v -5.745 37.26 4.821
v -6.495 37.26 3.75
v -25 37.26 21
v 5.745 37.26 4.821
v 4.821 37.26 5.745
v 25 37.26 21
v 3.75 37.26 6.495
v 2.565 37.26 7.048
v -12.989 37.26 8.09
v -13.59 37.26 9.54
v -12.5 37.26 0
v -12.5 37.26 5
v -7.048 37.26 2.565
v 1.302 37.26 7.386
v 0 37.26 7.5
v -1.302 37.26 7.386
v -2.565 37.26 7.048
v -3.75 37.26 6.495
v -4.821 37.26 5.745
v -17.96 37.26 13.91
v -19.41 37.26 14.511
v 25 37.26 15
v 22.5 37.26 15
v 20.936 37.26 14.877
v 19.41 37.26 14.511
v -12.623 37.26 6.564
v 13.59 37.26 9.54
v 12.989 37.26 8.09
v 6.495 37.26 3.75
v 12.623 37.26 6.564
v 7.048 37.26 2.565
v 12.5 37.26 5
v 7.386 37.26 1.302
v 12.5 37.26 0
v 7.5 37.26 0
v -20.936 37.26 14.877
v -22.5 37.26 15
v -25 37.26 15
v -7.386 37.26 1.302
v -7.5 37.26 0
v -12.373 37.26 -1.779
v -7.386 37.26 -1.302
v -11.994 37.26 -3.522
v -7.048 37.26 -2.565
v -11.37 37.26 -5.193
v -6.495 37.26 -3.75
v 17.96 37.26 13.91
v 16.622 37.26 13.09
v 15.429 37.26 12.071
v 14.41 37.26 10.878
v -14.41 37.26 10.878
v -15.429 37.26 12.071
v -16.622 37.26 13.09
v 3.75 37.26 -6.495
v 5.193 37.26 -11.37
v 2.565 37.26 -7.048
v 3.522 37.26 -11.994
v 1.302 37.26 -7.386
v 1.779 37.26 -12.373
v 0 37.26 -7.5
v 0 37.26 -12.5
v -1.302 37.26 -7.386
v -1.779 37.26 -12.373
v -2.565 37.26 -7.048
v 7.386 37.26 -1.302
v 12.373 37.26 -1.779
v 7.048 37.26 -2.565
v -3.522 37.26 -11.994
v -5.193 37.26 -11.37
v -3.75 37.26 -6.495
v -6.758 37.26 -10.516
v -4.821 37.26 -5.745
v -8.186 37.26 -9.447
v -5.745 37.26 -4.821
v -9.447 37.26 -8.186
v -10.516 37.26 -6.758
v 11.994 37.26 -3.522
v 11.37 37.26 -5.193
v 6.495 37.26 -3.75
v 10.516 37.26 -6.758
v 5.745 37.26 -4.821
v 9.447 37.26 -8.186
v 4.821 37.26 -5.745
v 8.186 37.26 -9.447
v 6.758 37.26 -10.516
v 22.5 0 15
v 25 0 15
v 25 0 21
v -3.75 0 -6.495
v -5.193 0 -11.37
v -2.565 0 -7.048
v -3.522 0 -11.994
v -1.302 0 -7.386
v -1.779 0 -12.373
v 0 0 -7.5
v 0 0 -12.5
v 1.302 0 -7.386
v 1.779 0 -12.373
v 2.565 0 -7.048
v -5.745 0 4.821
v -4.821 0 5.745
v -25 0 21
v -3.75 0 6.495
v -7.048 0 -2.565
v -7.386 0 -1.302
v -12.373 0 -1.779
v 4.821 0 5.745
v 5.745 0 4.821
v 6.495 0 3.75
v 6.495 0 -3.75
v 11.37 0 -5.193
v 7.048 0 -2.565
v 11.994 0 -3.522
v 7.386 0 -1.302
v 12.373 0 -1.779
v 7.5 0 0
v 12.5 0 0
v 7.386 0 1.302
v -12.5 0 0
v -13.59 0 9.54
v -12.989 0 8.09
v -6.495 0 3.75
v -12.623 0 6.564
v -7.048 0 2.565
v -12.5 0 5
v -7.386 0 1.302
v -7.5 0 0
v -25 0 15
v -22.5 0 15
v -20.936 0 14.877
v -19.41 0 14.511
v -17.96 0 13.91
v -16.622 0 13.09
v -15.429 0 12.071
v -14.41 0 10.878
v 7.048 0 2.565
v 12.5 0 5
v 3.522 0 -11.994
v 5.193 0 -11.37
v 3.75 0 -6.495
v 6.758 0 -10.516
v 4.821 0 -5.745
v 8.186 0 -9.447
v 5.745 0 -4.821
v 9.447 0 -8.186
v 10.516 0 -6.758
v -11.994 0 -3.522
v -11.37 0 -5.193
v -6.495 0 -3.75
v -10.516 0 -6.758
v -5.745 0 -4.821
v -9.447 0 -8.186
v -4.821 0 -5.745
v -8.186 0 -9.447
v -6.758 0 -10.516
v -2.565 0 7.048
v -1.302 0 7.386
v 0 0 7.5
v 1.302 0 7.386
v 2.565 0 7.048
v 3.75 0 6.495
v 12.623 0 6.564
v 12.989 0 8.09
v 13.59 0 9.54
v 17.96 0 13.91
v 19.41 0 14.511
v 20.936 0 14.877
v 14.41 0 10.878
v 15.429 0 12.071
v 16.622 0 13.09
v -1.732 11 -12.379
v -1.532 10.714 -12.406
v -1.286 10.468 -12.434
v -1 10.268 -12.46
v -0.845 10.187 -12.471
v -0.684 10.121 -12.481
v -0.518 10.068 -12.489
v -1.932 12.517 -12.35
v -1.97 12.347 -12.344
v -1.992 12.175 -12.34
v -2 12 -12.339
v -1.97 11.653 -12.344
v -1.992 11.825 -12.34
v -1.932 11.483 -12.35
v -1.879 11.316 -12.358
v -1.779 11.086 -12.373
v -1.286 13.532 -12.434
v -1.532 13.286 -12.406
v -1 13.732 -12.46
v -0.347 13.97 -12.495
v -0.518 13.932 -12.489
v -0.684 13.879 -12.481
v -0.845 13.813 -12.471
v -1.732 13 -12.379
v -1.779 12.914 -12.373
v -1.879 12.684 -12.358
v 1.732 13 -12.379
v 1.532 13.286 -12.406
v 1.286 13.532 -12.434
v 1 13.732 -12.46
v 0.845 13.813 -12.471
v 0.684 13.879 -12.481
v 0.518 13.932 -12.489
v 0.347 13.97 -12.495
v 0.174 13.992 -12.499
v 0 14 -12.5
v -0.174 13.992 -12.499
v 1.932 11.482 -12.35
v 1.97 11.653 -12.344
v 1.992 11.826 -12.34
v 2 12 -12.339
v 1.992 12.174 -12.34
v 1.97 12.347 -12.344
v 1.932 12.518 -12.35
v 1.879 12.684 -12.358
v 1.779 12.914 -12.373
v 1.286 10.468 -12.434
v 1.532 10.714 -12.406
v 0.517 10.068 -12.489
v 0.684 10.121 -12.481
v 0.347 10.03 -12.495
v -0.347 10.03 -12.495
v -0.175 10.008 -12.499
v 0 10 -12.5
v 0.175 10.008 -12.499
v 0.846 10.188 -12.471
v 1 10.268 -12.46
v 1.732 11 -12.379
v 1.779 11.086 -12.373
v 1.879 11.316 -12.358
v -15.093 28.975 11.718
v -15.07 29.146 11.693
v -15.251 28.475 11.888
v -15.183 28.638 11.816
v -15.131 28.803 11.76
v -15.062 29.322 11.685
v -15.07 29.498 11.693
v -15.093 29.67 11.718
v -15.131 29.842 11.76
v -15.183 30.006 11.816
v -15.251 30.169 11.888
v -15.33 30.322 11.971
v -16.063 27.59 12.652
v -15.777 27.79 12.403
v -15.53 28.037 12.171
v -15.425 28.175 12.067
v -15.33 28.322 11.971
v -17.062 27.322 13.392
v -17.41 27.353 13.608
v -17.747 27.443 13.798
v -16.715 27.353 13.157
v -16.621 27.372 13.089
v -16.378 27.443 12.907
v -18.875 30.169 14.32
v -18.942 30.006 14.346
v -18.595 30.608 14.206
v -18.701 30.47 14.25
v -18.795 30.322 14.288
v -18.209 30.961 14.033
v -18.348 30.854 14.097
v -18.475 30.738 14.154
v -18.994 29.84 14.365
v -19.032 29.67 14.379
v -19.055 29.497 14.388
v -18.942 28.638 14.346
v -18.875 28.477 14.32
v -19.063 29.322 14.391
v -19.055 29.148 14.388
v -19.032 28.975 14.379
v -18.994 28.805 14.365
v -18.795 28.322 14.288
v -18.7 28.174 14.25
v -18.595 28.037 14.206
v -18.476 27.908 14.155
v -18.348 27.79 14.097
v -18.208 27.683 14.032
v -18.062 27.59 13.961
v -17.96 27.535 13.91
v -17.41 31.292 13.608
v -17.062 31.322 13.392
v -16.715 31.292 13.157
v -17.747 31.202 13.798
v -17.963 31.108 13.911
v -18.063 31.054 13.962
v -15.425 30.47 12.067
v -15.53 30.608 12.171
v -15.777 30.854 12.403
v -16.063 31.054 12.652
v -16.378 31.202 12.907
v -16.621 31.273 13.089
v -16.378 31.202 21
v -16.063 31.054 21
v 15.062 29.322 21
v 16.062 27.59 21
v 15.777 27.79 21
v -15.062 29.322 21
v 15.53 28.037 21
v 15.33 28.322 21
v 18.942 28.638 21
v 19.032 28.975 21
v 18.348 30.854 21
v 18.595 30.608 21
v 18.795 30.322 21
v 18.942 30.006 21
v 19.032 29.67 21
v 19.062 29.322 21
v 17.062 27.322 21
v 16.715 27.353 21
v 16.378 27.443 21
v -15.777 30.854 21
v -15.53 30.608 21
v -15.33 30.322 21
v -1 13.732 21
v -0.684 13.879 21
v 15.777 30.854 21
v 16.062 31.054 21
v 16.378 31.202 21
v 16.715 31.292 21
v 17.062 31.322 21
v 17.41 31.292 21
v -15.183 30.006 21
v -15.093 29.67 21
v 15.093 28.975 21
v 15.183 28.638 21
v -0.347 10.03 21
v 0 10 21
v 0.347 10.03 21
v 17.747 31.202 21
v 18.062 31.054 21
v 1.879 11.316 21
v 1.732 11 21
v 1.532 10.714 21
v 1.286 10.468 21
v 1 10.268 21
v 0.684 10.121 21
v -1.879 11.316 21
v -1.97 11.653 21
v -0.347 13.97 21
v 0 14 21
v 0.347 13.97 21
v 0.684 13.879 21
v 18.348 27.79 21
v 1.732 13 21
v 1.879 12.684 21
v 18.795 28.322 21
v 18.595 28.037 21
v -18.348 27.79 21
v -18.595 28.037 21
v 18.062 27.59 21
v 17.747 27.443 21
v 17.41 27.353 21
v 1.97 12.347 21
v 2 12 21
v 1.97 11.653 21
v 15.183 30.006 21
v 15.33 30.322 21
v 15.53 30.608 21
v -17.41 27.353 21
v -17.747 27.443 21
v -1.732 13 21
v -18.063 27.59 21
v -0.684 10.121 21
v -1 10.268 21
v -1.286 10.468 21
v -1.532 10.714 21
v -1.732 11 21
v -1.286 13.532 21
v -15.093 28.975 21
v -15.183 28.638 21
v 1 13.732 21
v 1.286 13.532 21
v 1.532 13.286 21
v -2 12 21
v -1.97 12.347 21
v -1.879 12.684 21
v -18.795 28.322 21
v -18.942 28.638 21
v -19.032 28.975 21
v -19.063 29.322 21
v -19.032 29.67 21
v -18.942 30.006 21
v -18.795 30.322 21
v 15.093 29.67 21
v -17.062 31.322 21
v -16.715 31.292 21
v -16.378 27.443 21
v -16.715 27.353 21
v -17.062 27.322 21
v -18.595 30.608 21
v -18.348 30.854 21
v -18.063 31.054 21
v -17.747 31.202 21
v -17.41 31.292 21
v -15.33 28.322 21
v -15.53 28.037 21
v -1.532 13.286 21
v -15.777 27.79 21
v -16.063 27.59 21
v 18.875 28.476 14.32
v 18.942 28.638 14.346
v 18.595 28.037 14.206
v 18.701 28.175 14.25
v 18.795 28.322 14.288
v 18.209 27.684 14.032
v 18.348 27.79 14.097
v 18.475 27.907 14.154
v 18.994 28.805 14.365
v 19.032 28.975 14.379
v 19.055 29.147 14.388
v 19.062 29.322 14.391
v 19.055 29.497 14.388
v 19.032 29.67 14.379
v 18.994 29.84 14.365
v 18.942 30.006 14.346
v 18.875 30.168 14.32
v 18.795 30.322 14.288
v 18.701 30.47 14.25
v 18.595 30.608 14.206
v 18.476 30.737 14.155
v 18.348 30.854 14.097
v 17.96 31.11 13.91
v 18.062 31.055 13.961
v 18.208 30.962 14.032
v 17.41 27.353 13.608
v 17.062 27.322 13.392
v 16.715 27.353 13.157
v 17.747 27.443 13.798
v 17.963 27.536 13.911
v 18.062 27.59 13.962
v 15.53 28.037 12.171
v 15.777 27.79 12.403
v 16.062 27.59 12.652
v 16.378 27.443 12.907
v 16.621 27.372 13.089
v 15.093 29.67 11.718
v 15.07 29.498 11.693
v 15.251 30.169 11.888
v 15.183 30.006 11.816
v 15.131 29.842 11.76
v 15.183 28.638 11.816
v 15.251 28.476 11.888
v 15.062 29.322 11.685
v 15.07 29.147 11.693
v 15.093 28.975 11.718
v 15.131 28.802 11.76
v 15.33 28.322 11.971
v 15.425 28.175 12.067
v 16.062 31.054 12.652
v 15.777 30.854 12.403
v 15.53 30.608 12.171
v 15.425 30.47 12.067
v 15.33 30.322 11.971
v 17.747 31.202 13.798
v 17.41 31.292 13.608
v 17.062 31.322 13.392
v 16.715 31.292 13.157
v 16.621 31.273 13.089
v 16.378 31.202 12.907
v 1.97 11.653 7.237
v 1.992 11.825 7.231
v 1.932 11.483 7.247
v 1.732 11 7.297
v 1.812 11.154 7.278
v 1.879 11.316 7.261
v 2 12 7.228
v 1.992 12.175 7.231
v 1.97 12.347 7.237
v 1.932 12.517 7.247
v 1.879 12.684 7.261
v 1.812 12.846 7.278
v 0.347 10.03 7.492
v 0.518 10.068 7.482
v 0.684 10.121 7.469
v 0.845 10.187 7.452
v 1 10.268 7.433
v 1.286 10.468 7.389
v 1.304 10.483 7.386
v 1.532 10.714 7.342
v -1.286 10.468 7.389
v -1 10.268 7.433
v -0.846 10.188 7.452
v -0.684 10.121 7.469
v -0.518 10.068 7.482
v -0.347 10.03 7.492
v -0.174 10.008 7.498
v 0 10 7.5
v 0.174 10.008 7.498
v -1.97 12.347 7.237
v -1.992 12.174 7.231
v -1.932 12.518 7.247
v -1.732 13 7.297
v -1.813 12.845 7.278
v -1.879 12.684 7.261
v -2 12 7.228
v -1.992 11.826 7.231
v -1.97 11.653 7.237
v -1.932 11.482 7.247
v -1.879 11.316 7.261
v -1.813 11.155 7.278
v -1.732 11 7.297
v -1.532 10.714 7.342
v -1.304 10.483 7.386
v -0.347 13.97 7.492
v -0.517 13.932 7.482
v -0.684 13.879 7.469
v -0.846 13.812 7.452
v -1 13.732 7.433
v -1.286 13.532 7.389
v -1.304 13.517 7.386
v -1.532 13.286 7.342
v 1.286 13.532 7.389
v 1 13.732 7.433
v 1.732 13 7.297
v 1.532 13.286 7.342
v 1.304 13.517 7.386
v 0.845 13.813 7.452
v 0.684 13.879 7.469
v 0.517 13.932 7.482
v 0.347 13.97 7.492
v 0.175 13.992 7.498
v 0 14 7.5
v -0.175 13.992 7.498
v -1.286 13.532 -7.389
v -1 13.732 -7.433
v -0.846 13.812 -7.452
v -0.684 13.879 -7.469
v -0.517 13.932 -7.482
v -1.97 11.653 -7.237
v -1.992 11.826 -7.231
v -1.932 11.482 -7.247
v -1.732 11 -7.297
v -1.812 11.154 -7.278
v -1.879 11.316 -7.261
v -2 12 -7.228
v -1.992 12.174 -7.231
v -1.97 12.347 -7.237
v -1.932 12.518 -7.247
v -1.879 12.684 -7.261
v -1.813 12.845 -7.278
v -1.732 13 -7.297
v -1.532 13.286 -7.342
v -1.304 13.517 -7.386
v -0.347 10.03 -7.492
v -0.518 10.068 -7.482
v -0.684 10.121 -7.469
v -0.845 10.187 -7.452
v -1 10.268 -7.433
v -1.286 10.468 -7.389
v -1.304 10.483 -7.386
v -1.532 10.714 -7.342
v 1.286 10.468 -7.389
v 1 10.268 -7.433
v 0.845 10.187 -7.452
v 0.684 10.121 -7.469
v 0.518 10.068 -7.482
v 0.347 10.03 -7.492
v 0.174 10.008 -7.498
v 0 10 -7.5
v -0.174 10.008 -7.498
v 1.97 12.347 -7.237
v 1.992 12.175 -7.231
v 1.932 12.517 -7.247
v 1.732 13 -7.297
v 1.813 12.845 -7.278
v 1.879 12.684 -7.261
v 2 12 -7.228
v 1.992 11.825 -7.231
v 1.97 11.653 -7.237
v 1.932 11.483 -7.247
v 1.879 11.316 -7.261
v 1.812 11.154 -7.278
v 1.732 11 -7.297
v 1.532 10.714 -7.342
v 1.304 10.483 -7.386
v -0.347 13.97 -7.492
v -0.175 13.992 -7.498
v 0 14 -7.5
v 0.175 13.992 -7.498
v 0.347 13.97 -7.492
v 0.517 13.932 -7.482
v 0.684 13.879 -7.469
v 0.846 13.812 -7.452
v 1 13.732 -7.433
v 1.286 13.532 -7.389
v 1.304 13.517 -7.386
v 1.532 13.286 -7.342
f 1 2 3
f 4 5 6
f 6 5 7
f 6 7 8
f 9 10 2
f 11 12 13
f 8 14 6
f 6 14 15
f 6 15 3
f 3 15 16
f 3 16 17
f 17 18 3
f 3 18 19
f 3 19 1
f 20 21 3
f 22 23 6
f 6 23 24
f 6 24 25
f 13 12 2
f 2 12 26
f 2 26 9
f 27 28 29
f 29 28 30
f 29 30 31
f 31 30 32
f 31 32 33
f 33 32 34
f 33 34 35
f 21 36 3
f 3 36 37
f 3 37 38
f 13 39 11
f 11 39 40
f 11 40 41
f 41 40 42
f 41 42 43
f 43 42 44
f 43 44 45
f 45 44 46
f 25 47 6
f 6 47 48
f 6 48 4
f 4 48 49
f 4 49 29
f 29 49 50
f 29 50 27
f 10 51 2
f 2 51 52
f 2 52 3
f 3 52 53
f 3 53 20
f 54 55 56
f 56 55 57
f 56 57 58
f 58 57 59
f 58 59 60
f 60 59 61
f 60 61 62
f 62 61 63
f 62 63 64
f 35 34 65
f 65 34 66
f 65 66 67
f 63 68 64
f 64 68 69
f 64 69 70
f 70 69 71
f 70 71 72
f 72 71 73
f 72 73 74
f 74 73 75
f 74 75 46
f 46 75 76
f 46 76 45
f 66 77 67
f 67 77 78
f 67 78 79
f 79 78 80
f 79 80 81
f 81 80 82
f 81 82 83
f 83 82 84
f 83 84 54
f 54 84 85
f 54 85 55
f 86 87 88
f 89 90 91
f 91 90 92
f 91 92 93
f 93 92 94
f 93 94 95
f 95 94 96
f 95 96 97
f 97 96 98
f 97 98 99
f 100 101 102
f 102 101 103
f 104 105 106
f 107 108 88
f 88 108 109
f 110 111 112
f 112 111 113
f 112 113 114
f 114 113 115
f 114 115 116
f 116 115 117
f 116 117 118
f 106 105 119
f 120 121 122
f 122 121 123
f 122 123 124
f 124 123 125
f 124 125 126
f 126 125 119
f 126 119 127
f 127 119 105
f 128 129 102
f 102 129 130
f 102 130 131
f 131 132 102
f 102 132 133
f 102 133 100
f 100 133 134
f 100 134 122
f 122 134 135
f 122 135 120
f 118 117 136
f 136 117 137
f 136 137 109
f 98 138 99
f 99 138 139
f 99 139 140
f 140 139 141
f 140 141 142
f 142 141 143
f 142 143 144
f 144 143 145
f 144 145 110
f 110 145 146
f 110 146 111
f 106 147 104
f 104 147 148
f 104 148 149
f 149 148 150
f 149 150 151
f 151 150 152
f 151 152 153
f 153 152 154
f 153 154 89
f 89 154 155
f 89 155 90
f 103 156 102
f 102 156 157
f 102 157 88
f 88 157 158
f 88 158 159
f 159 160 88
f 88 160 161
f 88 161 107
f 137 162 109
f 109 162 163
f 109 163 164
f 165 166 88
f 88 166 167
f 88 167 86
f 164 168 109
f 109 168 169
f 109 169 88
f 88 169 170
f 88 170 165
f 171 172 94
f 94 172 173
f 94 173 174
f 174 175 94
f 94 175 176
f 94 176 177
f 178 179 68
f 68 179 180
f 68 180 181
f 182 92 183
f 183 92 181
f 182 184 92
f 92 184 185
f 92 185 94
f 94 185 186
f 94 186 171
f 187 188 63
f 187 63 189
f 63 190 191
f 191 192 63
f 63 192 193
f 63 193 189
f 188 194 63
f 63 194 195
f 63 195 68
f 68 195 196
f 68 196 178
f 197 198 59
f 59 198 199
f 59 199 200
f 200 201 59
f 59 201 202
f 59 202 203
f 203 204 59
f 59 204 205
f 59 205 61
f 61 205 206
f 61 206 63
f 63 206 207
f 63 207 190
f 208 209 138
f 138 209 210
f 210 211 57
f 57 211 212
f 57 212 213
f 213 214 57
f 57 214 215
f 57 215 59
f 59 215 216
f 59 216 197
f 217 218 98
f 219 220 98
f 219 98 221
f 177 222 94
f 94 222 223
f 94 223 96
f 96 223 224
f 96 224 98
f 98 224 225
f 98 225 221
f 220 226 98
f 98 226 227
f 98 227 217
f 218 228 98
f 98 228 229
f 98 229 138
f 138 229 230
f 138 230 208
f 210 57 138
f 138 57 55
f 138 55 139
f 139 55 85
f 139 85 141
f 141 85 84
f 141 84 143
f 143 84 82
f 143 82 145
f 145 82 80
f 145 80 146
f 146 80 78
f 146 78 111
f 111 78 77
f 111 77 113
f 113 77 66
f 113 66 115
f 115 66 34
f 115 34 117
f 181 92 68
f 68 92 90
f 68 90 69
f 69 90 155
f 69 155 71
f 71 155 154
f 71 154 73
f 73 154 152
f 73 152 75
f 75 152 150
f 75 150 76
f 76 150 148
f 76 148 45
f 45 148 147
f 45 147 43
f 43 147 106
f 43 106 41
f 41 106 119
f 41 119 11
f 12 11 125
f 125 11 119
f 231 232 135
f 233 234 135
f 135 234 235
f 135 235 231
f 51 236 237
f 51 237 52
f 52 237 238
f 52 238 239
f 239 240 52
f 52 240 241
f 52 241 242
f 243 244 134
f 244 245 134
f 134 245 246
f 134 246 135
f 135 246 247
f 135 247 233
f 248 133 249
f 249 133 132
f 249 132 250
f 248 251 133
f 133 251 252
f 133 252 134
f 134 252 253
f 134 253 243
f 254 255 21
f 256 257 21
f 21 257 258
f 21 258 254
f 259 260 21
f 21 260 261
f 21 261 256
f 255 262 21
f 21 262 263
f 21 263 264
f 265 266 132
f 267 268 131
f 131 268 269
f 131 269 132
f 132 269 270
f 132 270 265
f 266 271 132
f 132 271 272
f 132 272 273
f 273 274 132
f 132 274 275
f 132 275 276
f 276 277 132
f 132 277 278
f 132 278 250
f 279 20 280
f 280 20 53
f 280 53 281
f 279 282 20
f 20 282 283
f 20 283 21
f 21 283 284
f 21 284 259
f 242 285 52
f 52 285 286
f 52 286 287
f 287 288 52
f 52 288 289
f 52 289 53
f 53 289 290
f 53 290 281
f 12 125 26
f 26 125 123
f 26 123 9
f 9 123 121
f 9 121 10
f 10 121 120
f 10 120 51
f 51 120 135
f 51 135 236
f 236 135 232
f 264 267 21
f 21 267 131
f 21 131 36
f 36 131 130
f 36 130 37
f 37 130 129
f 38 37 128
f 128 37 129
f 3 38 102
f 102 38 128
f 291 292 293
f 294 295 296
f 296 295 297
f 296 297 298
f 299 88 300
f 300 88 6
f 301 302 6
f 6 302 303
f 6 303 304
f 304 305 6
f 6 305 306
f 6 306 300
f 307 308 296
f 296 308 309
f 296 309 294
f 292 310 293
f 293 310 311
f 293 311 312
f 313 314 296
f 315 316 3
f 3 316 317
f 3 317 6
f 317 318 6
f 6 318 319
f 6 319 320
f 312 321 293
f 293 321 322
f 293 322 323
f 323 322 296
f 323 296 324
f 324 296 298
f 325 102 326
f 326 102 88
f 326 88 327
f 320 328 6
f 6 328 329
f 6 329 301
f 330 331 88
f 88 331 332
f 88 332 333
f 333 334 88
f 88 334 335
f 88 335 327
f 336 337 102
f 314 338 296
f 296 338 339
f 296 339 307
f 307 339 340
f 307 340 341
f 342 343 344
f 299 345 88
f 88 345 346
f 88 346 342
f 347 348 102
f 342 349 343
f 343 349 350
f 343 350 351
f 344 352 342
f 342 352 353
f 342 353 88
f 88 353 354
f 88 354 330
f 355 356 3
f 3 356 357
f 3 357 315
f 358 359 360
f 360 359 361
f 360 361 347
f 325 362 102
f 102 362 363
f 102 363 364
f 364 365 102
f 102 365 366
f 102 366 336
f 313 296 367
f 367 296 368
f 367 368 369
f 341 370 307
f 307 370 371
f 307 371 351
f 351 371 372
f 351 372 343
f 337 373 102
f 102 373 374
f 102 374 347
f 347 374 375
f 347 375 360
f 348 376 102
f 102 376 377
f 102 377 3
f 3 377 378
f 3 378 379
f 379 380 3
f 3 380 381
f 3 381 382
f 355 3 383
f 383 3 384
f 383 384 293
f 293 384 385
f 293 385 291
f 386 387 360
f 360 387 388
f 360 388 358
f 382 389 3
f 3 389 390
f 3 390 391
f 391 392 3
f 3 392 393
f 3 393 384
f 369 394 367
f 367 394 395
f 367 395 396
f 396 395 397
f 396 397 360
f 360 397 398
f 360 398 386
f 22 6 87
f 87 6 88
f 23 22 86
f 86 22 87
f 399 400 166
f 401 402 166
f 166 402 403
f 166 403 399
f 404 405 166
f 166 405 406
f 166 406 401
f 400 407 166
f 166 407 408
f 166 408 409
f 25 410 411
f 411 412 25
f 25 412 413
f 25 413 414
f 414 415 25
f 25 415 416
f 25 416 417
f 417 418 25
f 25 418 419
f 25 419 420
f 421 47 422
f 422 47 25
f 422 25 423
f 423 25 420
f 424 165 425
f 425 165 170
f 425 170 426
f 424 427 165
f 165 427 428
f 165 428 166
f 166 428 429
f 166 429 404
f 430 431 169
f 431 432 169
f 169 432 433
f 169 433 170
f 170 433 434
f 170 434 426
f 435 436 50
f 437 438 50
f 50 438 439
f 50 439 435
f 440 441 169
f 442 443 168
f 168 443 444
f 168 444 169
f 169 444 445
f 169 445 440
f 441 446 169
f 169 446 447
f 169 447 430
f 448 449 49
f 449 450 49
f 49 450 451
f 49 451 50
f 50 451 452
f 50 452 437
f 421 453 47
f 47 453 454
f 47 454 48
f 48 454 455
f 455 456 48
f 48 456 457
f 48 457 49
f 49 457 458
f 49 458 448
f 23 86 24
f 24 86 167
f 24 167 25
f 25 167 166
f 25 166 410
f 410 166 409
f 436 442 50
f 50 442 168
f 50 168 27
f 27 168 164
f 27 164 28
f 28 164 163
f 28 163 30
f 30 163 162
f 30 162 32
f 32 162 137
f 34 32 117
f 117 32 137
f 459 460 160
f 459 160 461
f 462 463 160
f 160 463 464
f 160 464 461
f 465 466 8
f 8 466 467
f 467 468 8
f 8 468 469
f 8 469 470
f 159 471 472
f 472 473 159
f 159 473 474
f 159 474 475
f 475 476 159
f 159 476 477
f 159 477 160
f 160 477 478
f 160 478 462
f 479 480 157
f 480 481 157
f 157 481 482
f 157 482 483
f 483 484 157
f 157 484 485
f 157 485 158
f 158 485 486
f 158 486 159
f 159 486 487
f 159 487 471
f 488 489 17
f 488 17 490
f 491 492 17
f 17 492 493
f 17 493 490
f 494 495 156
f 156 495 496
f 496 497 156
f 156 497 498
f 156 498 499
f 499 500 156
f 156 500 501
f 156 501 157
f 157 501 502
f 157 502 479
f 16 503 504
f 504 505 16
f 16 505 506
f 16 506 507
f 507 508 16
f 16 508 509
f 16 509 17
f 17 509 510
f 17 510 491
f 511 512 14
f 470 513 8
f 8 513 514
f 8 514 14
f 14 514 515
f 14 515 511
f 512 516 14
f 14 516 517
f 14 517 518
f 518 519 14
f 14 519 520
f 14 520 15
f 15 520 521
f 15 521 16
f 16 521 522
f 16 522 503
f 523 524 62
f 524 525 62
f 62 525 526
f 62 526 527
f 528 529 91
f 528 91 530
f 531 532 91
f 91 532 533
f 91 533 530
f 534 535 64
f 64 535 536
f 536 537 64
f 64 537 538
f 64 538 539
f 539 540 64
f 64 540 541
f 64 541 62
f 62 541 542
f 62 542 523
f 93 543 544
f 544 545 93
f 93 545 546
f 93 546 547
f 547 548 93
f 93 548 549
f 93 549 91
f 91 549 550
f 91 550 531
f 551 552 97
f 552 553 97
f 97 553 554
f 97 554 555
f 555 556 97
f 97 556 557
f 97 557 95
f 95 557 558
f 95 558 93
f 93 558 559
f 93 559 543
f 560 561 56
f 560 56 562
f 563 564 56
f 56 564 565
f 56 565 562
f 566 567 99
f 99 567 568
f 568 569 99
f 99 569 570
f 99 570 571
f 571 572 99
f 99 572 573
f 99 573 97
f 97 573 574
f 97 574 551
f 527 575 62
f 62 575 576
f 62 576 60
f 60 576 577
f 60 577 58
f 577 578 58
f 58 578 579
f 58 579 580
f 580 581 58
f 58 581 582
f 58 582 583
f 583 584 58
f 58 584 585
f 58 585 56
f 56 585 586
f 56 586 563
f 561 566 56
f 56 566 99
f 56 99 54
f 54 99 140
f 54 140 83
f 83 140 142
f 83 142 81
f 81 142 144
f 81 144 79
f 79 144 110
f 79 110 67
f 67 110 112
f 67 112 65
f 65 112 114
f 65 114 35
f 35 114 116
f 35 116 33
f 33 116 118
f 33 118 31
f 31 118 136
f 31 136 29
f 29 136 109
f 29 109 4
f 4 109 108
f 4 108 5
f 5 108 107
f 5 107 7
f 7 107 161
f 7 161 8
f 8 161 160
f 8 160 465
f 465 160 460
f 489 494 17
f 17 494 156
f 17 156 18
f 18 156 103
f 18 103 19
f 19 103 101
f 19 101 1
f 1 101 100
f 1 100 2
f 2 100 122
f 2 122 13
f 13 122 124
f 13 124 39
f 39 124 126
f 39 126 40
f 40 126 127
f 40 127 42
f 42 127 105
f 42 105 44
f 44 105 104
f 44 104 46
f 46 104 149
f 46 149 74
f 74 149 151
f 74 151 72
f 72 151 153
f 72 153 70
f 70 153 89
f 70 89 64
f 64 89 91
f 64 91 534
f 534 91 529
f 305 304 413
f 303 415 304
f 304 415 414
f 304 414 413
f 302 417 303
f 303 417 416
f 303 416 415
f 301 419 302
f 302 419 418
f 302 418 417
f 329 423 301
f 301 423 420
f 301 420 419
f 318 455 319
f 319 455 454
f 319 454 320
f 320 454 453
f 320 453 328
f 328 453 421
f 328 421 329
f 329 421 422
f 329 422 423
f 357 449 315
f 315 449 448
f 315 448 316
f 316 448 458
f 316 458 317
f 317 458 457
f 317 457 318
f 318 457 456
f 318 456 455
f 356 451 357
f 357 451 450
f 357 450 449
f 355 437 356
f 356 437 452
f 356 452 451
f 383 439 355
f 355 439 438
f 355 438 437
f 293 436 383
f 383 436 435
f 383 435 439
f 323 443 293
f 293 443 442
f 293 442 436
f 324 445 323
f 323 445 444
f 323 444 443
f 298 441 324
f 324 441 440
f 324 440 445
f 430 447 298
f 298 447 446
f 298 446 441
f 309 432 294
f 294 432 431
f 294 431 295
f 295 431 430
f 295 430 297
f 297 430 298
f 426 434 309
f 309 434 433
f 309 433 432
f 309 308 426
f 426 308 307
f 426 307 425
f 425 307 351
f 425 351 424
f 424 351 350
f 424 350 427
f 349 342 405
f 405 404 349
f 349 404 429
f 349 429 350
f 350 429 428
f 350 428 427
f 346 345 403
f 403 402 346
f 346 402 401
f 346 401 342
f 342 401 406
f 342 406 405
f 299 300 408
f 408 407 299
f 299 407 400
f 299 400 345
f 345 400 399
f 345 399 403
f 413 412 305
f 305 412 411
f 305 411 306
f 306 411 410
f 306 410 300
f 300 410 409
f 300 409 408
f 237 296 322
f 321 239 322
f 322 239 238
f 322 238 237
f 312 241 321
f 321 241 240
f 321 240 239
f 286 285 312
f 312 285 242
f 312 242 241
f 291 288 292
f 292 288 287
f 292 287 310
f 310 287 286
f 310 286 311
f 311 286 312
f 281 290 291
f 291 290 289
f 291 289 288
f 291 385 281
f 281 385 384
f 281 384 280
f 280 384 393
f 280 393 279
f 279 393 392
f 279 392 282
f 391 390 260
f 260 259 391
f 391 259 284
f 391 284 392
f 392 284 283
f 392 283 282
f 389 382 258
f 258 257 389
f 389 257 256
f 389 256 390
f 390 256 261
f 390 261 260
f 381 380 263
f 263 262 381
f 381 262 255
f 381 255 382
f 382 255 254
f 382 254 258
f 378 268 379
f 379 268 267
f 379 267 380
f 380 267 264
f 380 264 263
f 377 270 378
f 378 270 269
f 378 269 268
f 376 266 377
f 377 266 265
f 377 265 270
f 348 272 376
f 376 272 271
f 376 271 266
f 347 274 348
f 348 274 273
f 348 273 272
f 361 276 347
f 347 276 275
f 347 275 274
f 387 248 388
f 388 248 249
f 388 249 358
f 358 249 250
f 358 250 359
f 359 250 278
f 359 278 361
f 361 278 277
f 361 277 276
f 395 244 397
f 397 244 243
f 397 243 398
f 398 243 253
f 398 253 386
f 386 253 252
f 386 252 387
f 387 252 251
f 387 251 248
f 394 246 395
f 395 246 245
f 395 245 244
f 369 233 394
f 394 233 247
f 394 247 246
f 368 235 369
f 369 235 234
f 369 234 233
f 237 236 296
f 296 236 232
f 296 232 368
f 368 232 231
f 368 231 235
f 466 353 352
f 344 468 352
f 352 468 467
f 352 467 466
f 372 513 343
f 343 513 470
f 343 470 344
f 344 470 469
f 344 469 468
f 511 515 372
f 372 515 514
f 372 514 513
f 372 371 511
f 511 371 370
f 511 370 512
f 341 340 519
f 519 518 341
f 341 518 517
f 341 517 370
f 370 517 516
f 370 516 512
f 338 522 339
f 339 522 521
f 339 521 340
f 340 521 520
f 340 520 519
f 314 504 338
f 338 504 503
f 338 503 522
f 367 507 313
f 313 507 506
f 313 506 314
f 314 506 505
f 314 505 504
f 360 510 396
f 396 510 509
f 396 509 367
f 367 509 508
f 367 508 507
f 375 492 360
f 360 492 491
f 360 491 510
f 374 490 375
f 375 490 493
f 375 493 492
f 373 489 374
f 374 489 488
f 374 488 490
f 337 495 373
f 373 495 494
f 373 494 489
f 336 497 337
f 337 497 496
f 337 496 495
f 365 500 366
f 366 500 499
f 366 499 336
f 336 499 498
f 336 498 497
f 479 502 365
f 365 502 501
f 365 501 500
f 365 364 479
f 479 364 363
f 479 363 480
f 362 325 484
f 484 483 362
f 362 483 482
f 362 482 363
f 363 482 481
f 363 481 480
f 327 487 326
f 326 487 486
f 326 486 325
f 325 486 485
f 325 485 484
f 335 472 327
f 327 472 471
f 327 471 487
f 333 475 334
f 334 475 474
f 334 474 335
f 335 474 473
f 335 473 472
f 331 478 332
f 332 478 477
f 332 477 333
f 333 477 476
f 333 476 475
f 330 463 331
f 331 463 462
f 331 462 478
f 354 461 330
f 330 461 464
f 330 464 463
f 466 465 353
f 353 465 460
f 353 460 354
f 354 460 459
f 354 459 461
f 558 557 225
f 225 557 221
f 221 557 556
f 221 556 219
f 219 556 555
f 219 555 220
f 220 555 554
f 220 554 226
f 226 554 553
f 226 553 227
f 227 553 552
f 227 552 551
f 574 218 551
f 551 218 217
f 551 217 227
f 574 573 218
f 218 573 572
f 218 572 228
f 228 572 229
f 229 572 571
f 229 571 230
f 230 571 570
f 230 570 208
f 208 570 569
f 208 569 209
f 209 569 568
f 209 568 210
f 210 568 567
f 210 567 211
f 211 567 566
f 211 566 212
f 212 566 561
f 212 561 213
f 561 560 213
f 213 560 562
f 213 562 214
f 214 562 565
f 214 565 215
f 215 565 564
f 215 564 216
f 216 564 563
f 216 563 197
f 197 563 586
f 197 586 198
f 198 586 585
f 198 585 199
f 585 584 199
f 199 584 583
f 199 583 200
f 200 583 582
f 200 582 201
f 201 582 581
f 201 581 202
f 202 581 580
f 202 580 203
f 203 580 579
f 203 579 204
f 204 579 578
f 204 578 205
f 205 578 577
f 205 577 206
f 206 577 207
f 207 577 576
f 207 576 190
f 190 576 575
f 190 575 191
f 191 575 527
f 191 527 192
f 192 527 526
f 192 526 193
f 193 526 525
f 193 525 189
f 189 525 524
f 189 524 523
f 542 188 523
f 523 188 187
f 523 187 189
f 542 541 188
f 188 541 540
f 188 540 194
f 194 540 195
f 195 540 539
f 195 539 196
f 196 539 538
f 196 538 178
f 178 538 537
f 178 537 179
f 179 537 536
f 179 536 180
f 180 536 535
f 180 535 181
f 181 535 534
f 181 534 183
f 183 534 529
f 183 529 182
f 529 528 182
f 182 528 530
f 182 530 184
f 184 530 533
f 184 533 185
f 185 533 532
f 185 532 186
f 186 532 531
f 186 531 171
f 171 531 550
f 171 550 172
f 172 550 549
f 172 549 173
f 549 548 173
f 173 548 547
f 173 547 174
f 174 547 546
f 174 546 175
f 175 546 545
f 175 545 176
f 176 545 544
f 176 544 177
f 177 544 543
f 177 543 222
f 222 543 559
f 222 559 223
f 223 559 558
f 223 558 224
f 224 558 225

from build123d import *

# Parameters (mm, degrees)
PROFILE_SKETCH1_R                    = 7.5
PROFILE_BOSS_EXTRUDE2_DEPTH          = 37.25987
FASTENINGHOLESKETCH3_R               = 2
FASTENINGHOLECUT_EXTRUDE8_DEPTH      = 56.995963358
LM8UUFASTENINGHOLESKETCH5_R          = 2
LM8UUFASTENINGHOLECUT_EXTRUDE9_DEPTH = 56.995963425


with BuildPart() as part:
    # Profile-Sketch1 → Profile-Boss-Extrude2 (new body)
    with BuildSketch(Plane(origin=(0, 0, 0), x_dir=(1, 0, 0), z_dir=(0, 1, 0))):
        with BuildLine():
            Line((-25, -21), (25, -21))
            Line((25, -21), (25, -15))
            Line((25, -15), (22.5, -15))
            ThreePointArc((22.5, -15), (15.428932188, -12.071067812), (12.5, -5))
            Line((12.5, -5), (12.5, 0))
            ThreePointArc((12.5, 0), (0, 12.5), (-12.5, 0))
            Line((-12.5, 0), (-12.5, -5))
            ThreePointArc((-12.5, -5), (-15.428932188, -12.071067812), (-22.5, -15))
            Line((-22.5, -15), (-25, -15))
            Line((-25, -15), (-25, -21))
        make_face()
        with Locations(Location((0, 0, 0), (0, 0, 270))):
            Circle(PROFILE_SKETCH1_R, mode=Mode.SUBTRACT)
    extrude(amount=PROFILE_BOSS_EXTRUDE2_DEPTH)

    # FasteningHoleSketch3 → FasteningHoleCut-Extrude8 (cut, through all)
    with BuildSketch(Plane.XY.offset(21)):
        with Locations((-17.0625, 29.32237)):
            Circle(FASTENINGHOLESKETCH3_R)
        with Locations((17.0625, 29.32237)):
            Circle(FASTENINGHOLESKETCH3_R)
    extrude(amount=-FASTENINGHOLECUT_EXTRUDE8_DEPTH, mode=Mode.SUBTRACT)

    # LM8UUFasteningHoleSketch5 → LM8UUFasteningHoleCut-Extrude9 (cut, through all)
    with BuildSketch(Plane.XY.offset(21)):
        with Locations((0, 12)):
            Circle(LM8UUFASTENINGHOLESKETCH5_R)
    extrude(amount=-LM8UUFASTENINGHOLECUT_EXTRUDE9_DEPTH, mode=Mode.SUBTRACT)


solid = part.part
